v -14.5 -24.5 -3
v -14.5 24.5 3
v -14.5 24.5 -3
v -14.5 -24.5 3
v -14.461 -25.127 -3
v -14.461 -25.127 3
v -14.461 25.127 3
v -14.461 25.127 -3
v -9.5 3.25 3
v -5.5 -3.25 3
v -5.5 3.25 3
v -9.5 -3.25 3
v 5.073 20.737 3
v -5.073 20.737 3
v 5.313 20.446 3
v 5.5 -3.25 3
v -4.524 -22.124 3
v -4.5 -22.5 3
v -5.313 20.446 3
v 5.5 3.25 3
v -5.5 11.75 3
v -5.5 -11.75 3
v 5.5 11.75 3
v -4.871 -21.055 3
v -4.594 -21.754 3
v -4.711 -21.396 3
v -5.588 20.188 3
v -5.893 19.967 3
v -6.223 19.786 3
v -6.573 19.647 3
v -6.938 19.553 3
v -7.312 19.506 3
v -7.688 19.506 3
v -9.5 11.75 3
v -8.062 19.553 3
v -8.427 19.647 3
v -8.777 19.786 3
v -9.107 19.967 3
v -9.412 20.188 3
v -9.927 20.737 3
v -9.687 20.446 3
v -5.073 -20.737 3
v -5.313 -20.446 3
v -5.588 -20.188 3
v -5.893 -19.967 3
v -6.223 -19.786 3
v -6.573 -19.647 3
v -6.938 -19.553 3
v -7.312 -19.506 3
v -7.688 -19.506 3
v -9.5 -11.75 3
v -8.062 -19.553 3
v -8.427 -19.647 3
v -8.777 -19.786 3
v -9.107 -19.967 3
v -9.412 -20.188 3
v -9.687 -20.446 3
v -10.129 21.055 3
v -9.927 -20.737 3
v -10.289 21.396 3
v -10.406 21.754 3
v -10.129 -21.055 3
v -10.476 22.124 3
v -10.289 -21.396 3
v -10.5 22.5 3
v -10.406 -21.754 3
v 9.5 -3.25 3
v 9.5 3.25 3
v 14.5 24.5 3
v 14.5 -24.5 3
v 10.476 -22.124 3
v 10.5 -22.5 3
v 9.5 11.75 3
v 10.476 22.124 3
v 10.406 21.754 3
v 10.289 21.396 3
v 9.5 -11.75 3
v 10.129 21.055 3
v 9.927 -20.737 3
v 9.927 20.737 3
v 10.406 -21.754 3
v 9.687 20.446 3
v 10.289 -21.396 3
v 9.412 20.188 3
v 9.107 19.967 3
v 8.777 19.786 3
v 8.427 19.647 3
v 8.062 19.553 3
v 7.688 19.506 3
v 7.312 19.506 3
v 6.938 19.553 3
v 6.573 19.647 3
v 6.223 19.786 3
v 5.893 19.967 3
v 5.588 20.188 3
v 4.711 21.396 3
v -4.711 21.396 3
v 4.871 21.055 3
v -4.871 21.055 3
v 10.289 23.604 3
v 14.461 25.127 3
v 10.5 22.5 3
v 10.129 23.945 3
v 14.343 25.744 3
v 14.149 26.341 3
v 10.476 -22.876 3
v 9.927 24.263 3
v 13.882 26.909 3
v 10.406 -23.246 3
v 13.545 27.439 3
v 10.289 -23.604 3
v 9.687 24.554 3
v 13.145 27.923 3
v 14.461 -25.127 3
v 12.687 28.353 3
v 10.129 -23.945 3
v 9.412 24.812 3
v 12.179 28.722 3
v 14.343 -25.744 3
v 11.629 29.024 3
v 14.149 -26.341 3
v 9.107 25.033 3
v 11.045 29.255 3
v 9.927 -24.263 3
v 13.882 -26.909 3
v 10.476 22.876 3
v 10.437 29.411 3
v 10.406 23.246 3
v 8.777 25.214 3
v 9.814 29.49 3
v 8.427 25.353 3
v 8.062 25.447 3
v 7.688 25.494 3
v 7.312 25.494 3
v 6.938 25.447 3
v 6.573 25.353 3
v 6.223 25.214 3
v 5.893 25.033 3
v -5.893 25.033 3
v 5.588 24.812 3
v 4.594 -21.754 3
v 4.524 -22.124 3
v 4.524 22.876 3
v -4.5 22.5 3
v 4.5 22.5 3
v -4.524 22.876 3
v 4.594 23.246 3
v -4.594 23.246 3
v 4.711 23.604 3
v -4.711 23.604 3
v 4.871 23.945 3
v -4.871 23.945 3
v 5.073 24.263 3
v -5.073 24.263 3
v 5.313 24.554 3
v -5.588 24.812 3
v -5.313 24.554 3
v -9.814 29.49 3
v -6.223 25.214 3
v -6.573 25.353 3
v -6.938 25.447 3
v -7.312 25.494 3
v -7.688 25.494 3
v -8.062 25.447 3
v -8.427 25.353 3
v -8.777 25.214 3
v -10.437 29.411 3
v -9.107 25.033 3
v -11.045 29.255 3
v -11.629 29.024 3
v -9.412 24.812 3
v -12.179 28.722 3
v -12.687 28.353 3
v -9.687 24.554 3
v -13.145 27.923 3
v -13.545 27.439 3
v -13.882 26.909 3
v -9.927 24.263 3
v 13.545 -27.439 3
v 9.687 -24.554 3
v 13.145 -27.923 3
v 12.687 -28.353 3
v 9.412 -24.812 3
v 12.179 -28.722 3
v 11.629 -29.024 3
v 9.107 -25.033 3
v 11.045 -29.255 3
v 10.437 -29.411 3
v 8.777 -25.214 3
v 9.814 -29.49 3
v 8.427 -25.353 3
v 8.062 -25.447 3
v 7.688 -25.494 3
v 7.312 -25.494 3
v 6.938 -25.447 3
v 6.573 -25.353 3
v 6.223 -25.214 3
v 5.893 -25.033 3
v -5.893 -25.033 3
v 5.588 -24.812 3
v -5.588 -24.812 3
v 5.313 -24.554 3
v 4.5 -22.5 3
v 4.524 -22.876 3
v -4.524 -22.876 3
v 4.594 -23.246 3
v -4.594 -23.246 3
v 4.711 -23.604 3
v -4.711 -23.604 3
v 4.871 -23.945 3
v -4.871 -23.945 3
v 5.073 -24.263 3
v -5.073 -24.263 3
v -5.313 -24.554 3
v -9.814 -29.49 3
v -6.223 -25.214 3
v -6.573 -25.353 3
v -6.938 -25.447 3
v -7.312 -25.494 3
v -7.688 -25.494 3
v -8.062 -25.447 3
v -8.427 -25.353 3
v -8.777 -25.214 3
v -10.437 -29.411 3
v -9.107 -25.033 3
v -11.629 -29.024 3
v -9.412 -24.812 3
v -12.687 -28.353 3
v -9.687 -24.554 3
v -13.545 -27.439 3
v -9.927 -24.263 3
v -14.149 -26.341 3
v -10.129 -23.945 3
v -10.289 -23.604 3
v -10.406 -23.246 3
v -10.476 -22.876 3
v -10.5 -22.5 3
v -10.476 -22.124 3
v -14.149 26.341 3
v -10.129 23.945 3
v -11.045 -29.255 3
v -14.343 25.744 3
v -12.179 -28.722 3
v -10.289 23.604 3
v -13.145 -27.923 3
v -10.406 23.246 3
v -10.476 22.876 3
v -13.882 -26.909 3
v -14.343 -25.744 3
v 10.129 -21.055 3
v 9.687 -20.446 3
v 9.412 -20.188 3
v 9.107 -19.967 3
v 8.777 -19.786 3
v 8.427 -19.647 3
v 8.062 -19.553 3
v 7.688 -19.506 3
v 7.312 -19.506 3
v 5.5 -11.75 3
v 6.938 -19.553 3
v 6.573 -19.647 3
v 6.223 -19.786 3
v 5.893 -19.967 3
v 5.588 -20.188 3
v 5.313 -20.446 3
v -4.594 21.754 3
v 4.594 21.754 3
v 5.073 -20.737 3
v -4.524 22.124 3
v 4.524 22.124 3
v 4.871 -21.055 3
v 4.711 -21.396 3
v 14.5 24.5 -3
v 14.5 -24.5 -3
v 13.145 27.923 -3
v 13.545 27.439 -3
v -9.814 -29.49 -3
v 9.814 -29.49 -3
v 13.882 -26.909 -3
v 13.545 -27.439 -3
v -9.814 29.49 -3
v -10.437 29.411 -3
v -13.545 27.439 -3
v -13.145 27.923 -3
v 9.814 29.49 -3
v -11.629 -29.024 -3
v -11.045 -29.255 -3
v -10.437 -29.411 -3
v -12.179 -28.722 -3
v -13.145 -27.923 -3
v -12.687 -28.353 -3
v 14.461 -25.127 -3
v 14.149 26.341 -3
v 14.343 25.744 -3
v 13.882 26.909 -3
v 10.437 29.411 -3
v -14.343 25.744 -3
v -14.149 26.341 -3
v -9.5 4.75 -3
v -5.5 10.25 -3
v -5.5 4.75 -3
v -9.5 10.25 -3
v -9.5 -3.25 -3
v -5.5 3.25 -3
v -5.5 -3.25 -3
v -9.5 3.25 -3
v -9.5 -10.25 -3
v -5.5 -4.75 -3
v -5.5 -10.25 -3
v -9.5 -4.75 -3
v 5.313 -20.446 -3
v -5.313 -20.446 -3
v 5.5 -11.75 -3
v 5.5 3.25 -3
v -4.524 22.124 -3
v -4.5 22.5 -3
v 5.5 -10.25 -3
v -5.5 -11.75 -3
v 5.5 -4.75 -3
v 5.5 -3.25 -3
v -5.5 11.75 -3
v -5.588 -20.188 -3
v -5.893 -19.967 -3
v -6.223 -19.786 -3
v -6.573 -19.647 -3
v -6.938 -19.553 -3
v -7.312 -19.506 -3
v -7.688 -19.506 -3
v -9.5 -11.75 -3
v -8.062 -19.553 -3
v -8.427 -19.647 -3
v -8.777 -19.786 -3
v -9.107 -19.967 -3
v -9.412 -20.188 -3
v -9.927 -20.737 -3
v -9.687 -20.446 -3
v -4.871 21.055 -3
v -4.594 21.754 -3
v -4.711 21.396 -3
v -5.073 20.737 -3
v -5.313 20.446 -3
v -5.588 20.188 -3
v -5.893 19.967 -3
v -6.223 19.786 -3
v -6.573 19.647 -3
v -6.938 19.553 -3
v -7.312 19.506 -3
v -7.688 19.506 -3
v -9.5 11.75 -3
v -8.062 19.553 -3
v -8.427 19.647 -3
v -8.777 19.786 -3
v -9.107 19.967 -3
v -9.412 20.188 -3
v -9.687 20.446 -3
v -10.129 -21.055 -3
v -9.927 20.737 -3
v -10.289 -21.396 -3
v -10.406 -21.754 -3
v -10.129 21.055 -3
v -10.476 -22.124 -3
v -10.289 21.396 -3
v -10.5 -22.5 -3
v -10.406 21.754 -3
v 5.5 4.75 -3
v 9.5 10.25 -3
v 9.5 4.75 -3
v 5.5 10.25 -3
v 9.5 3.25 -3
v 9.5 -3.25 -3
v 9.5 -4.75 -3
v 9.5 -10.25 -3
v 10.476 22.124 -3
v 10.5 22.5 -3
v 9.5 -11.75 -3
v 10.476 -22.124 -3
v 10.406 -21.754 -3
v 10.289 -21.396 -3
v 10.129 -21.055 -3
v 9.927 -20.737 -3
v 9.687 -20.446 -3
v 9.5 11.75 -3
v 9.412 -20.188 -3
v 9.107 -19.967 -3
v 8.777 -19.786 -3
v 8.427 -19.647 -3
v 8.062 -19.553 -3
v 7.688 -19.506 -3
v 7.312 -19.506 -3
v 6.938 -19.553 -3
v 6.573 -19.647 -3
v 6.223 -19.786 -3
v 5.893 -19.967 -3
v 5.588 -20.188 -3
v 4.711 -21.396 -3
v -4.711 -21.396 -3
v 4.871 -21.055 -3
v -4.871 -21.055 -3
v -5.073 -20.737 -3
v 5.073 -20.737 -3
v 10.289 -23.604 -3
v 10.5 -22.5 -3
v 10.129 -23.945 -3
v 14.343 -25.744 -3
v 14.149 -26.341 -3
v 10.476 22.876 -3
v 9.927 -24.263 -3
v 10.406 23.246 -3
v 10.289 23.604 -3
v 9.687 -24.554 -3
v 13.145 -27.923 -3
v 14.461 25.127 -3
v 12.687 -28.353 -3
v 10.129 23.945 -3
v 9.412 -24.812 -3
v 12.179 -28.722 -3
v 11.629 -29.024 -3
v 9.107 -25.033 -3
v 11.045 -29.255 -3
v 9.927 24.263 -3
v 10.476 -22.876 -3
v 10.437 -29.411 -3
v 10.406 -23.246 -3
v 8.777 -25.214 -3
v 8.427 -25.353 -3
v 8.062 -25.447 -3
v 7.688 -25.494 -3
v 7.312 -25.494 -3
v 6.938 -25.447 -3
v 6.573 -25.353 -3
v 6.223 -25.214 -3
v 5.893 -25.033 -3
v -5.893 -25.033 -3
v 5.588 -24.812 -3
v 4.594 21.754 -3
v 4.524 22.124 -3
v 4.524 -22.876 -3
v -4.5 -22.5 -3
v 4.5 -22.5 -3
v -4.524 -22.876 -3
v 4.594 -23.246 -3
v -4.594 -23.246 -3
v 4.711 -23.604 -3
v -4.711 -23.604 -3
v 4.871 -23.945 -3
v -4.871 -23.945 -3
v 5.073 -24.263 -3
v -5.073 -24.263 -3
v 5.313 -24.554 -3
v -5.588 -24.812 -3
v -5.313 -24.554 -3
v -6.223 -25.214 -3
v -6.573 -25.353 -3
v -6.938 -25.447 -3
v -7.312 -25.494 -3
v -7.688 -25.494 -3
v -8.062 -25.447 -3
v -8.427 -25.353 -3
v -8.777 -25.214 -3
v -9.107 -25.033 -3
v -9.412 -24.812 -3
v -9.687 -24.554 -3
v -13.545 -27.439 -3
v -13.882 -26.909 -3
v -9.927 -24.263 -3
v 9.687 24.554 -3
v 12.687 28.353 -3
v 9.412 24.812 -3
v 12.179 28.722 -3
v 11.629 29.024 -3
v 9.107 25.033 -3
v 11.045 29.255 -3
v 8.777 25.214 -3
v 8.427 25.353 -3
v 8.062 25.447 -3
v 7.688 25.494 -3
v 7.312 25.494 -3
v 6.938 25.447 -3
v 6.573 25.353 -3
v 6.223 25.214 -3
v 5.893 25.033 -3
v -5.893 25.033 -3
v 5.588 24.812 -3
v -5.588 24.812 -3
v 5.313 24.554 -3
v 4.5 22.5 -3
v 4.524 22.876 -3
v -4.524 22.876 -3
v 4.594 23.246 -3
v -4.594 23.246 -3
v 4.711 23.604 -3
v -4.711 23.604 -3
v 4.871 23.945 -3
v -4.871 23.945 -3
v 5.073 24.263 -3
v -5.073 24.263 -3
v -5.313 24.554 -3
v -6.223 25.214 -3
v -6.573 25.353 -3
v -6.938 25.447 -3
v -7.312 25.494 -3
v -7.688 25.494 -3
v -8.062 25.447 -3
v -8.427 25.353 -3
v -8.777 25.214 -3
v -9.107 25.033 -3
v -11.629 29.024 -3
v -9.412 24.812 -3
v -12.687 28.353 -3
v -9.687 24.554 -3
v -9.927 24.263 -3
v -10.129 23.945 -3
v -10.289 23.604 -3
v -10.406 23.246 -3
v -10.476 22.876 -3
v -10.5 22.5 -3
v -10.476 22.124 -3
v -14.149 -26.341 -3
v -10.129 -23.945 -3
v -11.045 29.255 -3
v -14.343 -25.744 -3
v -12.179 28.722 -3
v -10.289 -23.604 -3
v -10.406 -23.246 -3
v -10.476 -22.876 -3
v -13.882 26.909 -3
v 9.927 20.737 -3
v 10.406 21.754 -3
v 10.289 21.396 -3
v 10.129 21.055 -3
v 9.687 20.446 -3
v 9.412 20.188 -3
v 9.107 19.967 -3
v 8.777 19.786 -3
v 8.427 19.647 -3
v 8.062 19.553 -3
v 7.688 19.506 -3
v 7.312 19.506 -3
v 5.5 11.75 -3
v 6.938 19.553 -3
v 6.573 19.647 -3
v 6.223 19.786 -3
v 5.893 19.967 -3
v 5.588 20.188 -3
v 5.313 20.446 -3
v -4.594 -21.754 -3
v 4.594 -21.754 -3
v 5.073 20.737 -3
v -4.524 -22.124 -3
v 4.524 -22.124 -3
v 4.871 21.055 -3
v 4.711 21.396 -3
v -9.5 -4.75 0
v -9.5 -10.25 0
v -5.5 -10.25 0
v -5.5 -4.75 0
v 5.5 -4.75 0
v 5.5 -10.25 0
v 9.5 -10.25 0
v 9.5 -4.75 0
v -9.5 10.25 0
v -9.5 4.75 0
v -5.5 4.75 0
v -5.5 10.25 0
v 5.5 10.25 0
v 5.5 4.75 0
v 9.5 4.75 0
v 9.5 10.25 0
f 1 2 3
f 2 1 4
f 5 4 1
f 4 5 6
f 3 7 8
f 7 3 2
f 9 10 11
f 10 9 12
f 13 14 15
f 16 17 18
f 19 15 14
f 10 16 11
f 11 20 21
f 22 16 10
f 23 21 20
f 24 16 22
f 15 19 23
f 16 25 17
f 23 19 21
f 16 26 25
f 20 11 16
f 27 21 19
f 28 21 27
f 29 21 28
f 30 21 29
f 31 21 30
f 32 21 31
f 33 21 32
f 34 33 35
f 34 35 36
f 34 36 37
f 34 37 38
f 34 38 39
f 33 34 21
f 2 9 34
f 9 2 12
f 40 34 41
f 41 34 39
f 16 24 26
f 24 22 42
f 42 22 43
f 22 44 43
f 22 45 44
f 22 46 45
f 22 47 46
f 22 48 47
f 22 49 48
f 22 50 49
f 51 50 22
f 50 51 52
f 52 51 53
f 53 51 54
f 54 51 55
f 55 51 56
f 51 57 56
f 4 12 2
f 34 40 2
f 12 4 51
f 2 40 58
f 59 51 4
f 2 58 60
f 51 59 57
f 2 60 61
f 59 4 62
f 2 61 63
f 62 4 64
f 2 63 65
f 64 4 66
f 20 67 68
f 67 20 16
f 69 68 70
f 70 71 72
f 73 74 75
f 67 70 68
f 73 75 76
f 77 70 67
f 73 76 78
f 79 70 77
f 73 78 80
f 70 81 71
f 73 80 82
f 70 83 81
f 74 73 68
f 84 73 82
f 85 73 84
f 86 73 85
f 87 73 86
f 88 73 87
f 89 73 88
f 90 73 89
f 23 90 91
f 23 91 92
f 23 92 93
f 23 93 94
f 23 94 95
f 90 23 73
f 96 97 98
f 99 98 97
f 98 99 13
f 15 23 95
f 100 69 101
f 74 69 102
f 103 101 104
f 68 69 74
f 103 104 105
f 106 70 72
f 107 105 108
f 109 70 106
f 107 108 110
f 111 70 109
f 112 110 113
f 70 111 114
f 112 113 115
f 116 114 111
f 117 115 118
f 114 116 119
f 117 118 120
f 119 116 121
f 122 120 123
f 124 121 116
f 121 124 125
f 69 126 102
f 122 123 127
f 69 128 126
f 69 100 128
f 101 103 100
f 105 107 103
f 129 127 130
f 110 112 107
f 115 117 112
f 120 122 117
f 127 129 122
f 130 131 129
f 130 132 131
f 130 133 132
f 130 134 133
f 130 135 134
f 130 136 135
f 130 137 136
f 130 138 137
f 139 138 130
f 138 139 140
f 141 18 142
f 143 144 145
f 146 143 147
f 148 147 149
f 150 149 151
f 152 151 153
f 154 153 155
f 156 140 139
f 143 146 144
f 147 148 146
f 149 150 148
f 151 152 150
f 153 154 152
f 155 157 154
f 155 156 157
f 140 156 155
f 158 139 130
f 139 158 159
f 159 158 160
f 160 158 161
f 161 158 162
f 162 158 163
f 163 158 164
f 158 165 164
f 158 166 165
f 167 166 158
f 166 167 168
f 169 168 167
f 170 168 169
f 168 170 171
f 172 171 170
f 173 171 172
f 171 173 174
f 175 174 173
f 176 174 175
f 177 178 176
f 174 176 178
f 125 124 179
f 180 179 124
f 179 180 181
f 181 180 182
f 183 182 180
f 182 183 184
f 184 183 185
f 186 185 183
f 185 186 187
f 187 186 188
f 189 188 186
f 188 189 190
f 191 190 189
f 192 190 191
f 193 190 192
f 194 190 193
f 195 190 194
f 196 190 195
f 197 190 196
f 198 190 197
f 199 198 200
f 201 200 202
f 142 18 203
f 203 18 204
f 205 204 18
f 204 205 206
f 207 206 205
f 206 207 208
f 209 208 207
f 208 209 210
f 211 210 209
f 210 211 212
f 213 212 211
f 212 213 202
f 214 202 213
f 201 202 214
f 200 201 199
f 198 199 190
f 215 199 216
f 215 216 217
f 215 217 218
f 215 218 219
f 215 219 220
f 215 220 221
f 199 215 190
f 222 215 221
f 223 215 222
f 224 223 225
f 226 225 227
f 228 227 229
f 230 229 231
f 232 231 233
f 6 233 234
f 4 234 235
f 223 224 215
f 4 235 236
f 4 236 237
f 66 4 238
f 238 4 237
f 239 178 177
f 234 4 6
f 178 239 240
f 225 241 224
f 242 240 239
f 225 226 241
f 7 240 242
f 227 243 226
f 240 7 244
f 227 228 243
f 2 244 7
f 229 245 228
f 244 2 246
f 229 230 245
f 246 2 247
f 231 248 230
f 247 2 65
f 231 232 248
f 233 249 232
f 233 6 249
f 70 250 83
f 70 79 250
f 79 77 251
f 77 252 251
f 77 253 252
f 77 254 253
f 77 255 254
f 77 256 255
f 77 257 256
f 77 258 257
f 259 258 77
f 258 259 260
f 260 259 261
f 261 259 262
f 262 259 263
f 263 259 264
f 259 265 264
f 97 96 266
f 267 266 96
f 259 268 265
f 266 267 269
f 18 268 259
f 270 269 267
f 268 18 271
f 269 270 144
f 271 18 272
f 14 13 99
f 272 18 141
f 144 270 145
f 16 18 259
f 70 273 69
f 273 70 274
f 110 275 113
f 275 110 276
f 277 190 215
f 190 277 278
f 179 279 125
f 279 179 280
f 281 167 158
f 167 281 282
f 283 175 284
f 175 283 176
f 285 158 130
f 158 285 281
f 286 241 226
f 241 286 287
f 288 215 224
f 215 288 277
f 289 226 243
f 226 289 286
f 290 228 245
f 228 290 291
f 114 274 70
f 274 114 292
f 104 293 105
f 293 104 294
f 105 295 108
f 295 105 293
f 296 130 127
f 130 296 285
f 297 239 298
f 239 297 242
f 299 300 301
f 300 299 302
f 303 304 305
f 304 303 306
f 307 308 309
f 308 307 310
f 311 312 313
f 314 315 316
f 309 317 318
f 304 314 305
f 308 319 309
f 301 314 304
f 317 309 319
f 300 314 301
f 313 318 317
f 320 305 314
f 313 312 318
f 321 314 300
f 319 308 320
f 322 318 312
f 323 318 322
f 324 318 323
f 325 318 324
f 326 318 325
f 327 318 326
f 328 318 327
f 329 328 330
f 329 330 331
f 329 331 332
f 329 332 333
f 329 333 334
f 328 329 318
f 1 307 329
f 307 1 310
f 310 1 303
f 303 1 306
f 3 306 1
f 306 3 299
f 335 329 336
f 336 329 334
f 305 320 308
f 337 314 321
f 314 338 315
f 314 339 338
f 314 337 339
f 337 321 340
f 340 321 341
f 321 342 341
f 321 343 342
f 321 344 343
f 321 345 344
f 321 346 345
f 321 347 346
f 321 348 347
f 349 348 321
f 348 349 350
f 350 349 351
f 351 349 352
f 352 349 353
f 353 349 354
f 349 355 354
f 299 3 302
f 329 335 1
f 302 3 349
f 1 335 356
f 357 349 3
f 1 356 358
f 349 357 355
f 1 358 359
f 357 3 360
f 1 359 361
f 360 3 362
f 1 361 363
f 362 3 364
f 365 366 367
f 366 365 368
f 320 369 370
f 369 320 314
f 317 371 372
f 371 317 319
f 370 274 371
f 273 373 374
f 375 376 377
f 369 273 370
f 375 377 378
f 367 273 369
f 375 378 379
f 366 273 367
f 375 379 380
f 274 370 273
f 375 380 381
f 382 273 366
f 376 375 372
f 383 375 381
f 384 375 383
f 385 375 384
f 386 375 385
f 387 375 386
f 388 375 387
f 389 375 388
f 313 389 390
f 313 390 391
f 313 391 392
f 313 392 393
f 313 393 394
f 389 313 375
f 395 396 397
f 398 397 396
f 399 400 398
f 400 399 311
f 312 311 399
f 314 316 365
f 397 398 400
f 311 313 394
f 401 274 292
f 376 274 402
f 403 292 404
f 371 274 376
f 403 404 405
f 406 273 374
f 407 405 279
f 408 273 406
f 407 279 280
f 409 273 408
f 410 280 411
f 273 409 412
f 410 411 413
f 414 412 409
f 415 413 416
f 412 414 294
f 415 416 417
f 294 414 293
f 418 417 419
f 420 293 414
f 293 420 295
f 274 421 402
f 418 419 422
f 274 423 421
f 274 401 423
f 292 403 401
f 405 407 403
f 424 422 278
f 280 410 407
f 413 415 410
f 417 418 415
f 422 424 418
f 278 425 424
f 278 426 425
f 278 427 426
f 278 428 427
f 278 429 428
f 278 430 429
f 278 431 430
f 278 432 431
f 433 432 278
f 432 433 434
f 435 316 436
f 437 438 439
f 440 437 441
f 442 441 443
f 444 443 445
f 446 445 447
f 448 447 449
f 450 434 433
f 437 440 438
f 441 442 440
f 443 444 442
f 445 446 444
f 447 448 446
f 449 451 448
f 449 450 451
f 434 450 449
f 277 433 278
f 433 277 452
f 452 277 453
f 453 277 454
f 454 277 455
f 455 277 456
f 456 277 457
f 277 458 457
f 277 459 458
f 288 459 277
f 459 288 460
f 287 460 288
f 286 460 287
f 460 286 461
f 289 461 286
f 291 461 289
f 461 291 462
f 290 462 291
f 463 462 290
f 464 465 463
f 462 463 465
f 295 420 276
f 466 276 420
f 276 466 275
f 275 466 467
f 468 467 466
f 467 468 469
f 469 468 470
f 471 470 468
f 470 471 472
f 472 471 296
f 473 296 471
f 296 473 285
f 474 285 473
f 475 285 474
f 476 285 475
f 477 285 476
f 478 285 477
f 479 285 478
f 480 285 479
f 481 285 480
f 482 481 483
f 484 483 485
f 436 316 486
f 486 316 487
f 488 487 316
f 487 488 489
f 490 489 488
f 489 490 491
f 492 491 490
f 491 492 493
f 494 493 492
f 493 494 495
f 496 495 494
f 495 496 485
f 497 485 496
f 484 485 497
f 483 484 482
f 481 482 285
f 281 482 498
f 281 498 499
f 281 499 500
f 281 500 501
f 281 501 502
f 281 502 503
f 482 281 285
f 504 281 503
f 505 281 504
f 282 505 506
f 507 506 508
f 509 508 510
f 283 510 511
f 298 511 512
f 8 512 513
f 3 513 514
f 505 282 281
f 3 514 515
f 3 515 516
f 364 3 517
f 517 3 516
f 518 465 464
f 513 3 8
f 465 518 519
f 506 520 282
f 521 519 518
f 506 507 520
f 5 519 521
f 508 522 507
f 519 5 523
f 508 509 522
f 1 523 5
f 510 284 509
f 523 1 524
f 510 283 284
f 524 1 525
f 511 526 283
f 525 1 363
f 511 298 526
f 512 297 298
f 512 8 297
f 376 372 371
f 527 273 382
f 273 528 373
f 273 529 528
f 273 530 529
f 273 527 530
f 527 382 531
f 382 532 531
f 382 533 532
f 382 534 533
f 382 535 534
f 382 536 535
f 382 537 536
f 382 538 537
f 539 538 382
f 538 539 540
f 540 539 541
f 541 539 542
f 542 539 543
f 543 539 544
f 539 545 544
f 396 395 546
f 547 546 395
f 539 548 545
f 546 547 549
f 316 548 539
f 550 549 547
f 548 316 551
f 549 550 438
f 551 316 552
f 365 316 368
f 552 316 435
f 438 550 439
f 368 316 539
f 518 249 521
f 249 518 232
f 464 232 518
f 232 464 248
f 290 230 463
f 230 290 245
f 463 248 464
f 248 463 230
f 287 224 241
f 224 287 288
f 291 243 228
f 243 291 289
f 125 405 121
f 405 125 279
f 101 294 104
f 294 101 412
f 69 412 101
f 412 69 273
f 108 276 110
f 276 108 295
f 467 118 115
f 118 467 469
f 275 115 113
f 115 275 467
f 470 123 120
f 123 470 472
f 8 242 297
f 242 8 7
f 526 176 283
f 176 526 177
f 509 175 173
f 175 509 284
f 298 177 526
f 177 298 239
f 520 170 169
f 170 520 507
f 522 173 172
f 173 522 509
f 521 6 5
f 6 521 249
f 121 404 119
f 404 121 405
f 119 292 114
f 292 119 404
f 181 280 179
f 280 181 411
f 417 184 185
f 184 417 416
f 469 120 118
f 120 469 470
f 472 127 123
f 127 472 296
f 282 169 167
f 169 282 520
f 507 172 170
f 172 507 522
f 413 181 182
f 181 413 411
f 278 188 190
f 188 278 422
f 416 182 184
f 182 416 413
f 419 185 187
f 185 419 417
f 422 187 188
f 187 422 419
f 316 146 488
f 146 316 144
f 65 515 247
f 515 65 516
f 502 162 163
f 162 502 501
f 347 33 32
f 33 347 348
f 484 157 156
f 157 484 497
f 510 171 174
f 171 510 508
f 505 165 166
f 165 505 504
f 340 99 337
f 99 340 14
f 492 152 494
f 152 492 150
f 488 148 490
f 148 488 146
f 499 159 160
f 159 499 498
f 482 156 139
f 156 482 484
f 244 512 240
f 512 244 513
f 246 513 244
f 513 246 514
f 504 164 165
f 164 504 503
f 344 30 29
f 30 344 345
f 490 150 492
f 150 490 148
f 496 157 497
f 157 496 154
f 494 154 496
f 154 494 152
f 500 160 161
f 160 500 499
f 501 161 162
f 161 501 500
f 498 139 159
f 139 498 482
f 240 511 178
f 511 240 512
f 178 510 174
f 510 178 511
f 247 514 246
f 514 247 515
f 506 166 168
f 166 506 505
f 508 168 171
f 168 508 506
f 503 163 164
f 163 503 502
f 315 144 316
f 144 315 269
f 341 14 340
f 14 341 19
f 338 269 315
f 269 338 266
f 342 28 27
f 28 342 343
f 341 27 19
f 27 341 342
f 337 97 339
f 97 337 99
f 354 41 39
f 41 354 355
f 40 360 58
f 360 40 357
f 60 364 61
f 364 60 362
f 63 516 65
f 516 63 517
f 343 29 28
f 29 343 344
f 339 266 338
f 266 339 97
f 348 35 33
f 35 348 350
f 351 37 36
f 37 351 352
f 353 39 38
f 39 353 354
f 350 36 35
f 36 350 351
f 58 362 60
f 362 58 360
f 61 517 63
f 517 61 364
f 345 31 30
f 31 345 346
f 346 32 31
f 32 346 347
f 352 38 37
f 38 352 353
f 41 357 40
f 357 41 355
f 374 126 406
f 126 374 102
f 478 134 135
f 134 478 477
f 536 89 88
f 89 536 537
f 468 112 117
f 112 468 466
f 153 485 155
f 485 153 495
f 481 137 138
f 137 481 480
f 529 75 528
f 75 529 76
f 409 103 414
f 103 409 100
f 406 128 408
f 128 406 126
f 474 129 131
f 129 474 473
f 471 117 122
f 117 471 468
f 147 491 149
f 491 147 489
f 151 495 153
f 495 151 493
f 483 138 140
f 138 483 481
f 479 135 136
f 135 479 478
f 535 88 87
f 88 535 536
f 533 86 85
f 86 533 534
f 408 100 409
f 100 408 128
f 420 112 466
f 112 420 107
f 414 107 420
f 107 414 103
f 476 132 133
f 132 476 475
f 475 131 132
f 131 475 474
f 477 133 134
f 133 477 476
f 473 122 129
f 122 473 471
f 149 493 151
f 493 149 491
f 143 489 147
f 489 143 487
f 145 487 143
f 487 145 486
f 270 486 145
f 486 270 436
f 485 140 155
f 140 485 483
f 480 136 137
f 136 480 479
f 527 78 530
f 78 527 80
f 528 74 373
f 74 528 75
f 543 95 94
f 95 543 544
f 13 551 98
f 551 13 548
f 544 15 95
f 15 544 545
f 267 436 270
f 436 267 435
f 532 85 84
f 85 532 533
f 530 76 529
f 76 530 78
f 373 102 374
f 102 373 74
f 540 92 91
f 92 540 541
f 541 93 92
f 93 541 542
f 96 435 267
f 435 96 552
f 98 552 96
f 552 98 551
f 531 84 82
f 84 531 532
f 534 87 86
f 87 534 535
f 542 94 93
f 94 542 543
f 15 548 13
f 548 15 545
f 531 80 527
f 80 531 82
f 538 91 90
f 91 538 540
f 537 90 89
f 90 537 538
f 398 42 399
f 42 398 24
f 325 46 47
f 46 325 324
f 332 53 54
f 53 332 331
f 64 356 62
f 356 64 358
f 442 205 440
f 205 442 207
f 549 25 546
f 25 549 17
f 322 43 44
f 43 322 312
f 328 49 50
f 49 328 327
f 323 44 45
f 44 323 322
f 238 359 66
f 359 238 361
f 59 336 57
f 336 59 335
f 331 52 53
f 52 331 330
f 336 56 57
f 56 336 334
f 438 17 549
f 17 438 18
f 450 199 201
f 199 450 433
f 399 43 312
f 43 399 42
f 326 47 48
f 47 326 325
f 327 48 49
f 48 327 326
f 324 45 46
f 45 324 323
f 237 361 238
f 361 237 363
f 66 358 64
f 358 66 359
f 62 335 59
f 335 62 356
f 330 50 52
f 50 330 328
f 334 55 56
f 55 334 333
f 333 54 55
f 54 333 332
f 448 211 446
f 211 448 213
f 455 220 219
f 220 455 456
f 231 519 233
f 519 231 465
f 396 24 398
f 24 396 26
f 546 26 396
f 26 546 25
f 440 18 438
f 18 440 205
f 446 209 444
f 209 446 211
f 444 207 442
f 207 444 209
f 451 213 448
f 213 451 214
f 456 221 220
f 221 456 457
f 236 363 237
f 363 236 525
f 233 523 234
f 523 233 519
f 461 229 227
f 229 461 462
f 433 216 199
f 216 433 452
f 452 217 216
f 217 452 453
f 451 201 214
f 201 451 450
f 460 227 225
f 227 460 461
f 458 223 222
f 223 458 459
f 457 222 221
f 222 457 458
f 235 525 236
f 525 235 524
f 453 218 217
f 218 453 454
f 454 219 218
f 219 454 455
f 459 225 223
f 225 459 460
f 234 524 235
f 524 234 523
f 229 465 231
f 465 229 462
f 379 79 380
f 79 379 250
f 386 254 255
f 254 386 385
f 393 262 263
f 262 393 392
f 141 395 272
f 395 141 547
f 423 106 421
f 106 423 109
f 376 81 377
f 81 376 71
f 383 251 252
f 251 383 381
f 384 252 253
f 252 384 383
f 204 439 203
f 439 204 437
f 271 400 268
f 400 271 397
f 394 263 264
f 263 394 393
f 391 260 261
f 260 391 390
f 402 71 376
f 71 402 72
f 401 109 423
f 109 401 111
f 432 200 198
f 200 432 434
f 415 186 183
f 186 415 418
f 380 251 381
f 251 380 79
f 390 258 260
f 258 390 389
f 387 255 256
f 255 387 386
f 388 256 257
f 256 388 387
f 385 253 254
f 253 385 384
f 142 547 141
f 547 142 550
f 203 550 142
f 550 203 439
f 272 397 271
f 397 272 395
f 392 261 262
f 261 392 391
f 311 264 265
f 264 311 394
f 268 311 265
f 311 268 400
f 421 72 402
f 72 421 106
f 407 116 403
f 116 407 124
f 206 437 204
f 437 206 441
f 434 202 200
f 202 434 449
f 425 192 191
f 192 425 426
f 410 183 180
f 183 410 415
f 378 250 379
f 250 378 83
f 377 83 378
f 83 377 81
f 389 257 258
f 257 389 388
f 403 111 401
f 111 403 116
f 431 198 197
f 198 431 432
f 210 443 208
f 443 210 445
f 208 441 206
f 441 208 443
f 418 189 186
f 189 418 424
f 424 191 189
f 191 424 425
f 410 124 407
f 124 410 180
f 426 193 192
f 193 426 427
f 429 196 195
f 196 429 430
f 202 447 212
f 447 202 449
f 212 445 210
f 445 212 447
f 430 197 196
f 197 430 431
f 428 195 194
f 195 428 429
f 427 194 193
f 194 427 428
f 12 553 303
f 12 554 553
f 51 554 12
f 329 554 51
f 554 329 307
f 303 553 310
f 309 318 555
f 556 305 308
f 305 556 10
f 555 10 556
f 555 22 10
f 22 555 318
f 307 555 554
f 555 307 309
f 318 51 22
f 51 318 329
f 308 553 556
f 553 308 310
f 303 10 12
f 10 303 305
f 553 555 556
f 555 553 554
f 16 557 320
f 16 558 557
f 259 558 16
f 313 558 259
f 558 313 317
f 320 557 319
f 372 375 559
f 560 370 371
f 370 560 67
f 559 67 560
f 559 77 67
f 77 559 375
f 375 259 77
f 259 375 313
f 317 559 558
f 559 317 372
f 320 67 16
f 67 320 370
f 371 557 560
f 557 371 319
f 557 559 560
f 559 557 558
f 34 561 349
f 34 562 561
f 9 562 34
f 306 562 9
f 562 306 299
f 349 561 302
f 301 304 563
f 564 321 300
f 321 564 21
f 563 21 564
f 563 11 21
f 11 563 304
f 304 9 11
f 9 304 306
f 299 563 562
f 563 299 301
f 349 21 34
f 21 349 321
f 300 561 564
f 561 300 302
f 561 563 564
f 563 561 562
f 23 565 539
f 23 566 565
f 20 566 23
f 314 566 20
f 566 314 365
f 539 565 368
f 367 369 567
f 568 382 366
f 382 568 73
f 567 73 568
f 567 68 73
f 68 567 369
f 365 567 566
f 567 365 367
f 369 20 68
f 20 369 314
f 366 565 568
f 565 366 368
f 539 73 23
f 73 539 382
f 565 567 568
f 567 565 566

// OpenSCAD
$fn = 50;


difference() {
	union() {
		translate(v = [0, 0, -3.0000000000]) {
			hull() {
				translate(v = [-9.5000000000, 24.5000000000, 0]) {
					cylinder(h = 6, r = 5);
				}
				translate(v = [9.5000000000, 24.5000000000, 0]) {
					cylinder(h = 6, r = 5);
				}
				translate(v = [-9.5000000000, -24.5000000000, 0]) {
					cylinder(h = 6, r = 5);
				}
				translate(v = [9.5000000000, -24.5000000000, 0]) {
					cylinder(h = 6, r = 5);
				}
			}
		}
		translate(v = [0, 0, -3.0000000000]) {
			hull() {
				translate(v = [-9.5000000000, 24.5000000000, 0]) {
					cylinder(h = 6, r = 5);
				}
				translate(v = [9.5000000000, 24.5000000000, 0]) {
					cylinder(h = 6, r = 5);
				}
				translate(v = [-9.5000000000, -24.5000000000, 0]) {
					cylinder(h = 6, r = 5);
				}
				translate(v = [9.5000000000, -24.5000000000, 0]) {
					cylinder(h = 6, r = 5);
				}
			}
		}
	}
	union() {
		translate(v = [-7.5000000000, 22.5000000000, -50.0000000000]) {
			cylinder(h = 100, r = 3.0000000000);
		}
		translate(v = [7.5000000000, 22.5000000000, -50.0000000000]) {
			cylinder(h = 100, r = 3.0000000000);
		}
		translate(v = [-7.5000000000, -22.5000000000, -50.0000000000]) {
			cylinder(h = 100, r = 3.0000000000);
		}
		translate(v = [7.5000000000, -22.5000000000, -50.0000000000]) {
			cylinder(h = 100, r = 3.0000000000);
		}
		translate(v = [-9.5000000000, -11.7500000000, -50]) {
			cube(size = [4, 1.5000000000, 100]);
		}
		translate(v = [-9.5000000000, -4.7500000000, -50]) {
			cube(size = [4, 1.5000000000, 100]);
		}
		translate(v = [-9.5000000000, -11.7500000000, 0]) {
			cube(size = [4, 8.5000000000, 3]);
		}
		translate(v = [5.5000000000, -11.7500000000, -50]) {
			cube(size = [4, 1.5000000000, 100]);
		}
		translate(v = [5.5000000000, -4.7500000000, -50]) {
			cube(size = [4, 1.5000000000, 100]);
		}
		translate(v = [5.5000000000, -11.7500000000, 0]) {
			cube(size = [4, 8.5000000000, 3]);
		}
		translate(v = [-9.5000000000, 3.2500000000, -50]) {
			cube(size = [4, 1.5000000000, 100]);
		}
		translate(v = [-9.5000000000, 10.2500000000, -50]) {
			cube(size = [4, 1.5000000000, 100]);
		}
		translate(v = [-9.5000000000, 3.2500000000, 0]) {
			cube(size = [4, 8.5000000000, 3]);
		}
		translate(v = [5.5000000000, 3.2500000000, -50]) {
			cube(size = [4, 1.5000000000, 100]);
		}
		translate(v = [5.5000000000, 10.2500000000, -50]) {
			cube(size = [4, 1.5000000000, 100]);
		}
		translate(v = [5.5000000000, 3.2500000000, 0]) {
			cube(size = [4, 8.5000000000, 3]);
		}
	}
}
